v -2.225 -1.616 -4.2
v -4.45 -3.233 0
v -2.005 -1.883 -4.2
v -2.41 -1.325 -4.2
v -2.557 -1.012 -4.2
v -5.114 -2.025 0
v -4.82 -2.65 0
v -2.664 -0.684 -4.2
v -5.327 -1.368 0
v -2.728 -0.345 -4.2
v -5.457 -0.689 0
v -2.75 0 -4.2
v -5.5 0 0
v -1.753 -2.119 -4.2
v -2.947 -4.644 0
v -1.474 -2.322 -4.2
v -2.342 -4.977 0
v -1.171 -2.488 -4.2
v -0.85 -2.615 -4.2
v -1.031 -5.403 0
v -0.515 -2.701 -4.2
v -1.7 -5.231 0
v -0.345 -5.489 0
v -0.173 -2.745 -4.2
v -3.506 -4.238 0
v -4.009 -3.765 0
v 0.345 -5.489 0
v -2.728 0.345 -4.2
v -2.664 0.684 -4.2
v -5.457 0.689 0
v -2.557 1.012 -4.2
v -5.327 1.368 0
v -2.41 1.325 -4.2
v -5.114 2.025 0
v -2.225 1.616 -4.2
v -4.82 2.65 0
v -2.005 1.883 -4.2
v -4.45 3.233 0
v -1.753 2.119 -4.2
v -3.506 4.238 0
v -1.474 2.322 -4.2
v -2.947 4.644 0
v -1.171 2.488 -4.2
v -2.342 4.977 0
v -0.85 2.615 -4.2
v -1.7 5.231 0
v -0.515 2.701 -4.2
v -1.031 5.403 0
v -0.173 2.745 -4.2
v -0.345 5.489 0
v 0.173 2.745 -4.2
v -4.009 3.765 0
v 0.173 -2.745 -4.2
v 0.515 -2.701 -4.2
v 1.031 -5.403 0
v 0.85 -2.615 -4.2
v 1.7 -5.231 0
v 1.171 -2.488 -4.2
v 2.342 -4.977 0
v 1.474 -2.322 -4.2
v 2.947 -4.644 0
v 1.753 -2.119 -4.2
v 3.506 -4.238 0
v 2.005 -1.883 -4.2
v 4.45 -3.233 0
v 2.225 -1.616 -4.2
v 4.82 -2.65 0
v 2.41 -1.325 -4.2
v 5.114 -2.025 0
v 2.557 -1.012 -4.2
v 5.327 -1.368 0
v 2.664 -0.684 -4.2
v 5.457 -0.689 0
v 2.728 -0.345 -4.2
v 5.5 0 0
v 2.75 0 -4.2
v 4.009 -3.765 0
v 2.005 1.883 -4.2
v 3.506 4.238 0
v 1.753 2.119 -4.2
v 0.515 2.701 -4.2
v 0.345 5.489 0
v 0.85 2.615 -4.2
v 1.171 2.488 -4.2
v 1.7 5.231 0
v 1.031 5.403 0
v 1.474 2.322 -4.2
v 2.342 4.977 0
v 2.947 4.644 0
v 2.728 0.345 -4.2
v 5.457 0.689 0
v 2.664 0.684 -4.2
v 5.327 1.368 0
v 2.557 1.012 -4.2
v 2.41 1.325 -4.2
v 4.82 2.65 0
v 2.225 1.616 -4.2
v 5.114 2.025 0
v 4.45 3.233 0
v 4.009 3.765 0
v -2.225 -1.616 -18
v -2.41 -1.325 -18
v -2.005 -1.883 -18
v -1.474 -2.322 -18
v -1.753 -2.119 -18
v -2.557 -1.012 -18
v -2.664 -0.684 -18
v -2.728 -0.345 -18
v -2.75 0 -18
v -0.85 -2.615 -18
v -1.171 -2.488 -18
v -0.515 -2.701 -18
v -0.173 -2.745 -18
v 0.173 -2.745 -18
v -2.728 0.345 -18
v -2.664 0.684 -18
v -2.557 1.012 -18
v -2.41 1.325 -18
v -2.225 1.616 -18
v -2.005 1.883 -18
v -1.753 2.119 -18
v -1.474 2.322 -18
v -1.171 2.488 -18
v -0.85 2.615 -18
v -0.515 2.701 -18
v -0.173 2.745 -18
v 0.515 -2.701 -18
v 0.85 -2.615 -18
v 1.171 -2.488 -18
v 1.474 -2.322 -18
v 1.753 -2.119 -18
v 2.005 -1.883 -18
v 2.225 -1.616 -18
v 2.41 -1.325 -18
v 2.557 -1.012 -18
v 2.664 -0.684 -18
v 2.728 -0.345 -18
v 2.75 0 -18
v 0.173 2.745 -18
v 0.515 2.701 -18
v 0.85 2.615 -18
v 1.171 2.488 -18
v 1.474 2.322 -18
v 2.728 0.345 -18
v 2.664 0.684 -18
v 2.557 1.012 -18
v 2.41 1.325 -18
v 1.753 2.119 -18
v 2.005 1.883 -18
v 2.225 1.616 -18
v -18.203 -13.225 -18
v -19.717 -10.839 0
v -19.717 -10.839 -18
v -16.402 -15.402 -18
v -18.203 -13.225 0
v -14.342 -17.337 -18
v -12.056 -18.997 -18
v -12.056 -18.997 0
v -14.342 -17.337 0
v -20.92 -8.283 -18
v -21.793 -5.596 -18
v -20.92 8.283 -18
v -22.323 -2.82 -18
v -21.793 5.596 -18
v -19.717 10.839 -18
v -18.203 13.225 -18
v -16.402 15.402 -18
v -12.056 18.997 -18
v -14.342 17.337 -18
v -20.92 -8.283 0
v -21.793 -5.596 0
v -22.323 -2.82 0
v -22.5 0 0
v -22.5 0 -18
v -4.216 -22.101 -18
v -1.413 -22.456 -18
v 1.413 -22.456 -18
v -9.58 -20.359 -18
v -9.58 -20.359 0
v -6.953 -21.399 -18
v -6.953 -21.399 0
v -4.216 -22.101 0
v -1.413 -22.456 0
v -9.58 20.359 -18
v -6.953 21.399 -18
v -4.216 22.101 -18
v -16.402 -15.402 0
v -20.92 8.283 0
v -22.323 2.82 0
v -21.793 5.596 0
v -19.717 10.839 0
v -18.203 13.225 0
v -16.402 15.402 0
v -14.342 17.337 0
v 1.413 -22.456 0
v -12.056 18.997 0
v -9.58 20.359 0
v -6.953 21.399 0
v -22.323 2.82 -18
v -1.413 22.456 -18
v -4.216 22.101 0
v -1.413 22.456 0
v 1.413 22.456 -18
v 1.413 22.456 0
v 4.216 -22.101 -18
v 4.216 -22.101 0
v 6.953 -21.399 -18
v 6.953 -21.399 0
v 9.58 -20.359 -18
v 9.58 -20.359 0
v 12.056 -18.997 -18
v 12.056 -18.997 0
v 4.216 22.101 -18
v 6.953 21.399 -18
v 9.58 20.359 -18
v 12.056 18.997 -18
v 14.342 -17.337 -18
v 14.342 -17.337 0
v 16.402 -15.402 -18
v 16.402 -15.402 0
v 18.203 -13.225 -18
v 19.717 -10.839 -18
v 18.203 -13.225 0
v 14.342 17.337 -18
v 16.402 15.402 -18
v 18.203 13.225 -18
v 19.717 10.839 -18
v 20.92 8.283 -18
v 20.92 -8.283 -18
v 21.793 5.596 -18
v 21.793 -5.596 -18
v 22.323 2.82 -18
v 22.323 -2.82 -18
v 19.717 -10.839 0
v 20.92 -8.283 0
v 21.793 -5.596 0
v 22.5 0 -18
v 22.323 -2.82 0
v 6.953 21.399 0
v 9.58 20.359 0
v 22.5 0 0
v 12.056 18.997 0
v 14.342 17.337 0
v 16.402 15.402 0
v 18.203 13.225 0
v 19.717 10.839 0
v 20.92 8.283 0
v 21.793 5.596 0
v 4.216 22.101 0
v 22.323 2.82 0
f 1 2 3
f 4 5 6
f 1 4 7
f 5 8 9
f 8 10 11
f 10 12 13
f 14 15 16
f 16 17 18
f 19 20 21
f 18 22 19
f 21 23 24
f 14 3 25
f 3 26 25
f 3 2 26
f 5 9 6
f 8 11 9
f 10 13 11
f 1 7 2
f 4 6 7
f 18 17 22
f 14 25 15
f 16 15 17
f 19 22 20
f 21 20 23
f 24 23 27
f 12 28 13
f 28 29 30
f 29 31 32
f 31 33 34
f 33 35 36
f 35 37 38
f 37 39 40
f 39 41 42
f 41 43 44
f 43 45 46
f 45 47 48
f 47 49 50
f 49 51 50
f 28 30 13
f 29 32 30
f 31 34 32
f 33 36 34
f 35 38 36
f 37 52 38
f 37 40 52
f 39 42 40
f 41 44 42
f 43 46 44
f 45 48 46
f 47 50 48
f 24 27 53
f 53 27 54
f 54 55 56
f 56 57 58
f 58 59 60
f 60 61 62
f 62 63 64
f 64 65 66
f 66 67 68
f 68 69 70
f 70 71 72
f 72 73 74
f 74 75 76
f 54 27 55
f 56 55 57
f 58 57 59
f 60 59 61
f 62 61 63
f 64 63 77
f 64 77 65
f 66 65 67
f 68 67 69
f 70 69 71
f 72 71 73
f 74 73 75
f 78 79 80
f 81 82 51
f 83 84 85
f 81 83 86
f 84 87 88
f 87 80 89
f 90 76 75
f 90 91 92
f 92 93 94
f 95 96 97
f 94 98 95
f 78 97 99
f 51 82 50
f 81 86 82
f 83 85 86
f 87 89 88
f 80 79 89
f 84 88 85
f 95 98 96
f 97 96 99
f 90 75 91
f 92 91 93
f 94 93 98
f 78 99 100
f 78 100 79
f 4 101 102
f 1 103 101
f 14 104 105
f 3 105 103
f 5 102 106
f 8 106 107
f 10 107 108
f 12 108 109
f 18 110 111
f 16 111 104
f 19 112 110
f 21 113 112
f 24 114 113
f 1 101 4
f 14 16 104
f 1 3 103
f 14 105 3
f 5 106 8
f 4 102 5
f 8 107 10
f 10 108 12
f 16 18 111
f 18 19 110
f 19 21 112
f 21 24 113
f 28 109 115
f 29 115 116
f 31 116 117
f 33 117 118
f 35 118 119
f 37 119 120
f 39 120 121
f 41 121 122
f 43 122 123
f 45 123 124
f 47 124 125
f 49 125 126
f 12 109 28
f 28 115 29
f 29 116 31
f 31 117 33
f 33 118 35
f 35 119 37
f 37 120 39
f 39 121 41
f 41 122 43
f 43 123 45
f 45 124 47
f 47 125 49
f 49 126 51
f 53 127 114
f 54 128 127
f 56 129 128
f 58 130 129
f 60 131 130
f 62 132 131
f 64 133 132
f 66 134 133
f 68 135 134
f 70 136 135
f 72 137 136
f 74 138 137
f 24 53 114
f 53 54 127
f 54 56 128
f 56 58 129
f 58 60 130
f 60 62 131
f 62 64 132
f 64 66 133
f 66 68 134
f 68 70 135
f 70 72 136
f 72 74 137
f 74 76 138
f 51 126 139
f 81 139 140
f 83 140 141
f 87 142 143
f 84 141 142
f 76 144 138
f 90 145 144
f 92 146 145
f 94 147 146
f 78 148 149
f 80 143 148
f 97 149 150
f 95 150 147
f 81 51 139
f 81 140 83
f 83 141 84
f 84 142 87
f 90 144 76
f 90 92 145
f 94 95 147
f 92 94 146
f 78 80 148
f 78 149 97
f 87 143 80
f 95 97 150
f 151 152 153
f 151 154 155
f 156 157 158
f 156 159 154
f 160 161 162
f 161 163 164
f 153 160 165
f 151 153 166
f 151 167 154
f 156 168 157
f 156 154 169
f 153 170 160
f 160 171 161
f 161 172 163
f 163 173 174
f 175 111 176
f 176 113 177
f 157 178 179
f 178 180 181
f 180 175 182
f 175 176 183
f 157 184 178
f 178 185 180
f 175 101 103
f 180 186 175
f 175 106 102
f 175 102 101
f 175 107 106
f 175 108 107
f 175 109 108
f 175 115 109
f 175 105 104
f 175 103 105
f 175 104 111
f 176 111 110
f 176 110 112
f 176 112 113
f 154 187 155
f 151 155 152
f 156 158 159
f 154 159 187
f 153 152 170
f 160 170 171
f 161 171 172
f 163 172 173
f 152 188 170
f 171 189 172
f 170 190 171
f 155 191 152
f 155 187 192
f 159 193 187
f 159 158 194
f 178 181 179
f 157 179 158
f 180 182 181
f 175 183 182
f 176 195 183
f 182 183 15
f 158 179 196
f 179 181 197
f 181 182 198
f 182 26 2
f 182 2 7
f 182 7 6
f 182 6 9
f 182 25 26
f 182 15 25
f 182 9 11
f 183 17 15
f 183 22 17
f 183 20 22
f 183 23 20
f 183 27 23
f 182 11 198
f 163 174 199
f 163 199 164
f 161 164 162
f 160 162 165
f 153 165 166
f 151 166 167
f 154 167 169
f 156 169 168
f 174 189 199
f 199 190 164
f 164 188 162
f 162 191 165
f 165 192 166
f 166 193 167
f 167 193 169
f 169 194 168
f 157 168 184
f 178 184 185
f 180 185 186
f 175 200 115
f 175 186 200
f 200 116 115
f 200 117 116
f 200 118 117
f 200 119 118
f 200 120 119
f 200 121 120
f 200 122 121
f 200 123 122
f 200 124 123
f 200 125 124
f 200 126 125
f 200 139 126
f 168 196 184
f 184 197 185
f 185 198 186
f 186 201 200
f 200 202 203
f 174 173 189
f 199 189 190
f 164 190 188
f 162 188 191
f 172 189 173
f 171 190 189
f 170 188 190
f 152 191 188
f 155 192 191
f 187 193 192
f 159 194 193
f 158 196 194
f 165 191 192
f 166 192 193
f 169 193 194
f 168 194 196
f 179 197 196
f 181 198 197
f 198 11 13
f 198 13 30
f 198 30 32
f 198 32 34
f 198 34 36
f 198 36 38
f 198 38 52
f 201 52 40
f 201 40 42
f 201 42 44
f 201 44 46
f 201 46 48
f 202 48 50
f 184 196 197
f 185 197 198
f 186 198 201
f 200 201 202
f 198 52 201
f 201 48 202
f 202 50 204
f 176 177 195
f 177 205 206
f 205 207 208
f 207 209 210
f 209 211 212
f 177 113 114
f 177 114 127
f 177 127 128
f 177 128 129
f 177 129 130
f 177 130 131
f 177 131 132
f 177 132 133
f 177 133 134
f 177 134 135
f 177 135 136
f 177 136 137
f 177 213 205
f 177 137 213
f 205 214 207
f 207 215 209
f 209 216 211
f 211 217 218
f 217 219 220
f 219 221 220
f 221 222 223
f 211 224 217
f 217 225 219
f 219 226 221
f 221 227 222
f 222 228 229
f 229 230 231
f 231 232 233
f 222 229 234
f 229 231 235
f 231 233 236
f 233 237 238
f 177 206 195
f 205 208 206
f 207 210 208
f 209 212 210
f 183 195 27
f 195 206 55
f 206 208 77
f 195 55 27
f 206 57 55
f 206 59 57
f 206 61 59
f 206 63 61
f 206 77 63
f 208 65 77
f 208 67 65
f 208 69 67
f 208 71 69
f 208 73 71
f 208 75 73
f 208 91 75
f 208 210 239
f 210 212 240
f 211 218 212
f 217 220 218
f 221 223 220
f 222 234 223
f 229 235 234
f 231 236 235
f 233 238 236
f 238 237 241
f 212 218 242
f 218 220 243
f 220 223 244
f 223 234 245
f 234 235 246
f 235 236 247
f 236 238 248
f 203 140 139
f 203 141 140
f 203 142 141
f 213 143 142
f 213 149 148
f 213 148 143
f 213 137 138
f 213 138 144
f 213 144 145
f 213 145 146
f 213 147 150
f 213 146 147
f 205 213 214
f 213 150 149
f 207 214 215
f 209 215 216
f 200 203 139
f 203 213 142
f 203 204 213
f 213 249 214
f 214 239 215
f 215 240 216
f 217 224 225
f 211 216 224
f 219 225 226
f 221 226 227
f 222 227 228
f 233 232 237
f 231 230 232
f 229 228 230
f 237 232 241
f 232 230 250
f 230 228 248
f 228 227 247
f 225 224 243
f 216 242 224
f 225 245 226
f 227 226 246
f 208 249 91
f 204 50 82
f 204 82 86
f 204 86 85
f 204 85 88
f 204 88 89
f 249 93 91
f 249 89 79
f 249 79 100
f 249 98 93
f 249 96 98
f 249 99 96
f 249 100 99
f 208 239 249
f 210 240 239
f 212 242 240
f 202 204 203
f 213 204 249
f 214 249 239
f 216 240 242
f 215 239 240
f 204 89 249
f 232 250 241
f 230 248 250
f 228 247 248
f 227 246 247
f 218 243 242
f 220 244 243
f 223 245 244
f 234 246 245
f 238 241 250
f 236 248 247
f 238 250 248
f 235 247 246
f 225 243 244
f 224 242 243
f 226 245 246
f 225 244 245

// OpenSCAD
$fn = 50;

difference() {
	union() {
		translate(v = [0, 0, -18.0]) {
			cylinder(h = 18, r = 22.5);
		}
	}
	union() {
		translate(v = [0, 0, 0]) {
			rotate(a = [0, 0, 0]) {
				difference() {
					union() {
						translate(v = [0, 0, -21.0]) {
							cylinder(h = 21, r = 2.25);
						}
						translate(v = [0, 0, -4.2]) {
							cylinder(h = 4.2, r1 = 2.75, r2 = 5.5);
						}
						translate(v = [0, 0, -21.0]) {
							cylinder(h = 21, r = 2.75);
						}
						translate(v = [0, 0, -21.0]) {
							cylinder(h = 21, r = 2.25);
						}
					}
					union();
				}
			}
		}
	}
}
